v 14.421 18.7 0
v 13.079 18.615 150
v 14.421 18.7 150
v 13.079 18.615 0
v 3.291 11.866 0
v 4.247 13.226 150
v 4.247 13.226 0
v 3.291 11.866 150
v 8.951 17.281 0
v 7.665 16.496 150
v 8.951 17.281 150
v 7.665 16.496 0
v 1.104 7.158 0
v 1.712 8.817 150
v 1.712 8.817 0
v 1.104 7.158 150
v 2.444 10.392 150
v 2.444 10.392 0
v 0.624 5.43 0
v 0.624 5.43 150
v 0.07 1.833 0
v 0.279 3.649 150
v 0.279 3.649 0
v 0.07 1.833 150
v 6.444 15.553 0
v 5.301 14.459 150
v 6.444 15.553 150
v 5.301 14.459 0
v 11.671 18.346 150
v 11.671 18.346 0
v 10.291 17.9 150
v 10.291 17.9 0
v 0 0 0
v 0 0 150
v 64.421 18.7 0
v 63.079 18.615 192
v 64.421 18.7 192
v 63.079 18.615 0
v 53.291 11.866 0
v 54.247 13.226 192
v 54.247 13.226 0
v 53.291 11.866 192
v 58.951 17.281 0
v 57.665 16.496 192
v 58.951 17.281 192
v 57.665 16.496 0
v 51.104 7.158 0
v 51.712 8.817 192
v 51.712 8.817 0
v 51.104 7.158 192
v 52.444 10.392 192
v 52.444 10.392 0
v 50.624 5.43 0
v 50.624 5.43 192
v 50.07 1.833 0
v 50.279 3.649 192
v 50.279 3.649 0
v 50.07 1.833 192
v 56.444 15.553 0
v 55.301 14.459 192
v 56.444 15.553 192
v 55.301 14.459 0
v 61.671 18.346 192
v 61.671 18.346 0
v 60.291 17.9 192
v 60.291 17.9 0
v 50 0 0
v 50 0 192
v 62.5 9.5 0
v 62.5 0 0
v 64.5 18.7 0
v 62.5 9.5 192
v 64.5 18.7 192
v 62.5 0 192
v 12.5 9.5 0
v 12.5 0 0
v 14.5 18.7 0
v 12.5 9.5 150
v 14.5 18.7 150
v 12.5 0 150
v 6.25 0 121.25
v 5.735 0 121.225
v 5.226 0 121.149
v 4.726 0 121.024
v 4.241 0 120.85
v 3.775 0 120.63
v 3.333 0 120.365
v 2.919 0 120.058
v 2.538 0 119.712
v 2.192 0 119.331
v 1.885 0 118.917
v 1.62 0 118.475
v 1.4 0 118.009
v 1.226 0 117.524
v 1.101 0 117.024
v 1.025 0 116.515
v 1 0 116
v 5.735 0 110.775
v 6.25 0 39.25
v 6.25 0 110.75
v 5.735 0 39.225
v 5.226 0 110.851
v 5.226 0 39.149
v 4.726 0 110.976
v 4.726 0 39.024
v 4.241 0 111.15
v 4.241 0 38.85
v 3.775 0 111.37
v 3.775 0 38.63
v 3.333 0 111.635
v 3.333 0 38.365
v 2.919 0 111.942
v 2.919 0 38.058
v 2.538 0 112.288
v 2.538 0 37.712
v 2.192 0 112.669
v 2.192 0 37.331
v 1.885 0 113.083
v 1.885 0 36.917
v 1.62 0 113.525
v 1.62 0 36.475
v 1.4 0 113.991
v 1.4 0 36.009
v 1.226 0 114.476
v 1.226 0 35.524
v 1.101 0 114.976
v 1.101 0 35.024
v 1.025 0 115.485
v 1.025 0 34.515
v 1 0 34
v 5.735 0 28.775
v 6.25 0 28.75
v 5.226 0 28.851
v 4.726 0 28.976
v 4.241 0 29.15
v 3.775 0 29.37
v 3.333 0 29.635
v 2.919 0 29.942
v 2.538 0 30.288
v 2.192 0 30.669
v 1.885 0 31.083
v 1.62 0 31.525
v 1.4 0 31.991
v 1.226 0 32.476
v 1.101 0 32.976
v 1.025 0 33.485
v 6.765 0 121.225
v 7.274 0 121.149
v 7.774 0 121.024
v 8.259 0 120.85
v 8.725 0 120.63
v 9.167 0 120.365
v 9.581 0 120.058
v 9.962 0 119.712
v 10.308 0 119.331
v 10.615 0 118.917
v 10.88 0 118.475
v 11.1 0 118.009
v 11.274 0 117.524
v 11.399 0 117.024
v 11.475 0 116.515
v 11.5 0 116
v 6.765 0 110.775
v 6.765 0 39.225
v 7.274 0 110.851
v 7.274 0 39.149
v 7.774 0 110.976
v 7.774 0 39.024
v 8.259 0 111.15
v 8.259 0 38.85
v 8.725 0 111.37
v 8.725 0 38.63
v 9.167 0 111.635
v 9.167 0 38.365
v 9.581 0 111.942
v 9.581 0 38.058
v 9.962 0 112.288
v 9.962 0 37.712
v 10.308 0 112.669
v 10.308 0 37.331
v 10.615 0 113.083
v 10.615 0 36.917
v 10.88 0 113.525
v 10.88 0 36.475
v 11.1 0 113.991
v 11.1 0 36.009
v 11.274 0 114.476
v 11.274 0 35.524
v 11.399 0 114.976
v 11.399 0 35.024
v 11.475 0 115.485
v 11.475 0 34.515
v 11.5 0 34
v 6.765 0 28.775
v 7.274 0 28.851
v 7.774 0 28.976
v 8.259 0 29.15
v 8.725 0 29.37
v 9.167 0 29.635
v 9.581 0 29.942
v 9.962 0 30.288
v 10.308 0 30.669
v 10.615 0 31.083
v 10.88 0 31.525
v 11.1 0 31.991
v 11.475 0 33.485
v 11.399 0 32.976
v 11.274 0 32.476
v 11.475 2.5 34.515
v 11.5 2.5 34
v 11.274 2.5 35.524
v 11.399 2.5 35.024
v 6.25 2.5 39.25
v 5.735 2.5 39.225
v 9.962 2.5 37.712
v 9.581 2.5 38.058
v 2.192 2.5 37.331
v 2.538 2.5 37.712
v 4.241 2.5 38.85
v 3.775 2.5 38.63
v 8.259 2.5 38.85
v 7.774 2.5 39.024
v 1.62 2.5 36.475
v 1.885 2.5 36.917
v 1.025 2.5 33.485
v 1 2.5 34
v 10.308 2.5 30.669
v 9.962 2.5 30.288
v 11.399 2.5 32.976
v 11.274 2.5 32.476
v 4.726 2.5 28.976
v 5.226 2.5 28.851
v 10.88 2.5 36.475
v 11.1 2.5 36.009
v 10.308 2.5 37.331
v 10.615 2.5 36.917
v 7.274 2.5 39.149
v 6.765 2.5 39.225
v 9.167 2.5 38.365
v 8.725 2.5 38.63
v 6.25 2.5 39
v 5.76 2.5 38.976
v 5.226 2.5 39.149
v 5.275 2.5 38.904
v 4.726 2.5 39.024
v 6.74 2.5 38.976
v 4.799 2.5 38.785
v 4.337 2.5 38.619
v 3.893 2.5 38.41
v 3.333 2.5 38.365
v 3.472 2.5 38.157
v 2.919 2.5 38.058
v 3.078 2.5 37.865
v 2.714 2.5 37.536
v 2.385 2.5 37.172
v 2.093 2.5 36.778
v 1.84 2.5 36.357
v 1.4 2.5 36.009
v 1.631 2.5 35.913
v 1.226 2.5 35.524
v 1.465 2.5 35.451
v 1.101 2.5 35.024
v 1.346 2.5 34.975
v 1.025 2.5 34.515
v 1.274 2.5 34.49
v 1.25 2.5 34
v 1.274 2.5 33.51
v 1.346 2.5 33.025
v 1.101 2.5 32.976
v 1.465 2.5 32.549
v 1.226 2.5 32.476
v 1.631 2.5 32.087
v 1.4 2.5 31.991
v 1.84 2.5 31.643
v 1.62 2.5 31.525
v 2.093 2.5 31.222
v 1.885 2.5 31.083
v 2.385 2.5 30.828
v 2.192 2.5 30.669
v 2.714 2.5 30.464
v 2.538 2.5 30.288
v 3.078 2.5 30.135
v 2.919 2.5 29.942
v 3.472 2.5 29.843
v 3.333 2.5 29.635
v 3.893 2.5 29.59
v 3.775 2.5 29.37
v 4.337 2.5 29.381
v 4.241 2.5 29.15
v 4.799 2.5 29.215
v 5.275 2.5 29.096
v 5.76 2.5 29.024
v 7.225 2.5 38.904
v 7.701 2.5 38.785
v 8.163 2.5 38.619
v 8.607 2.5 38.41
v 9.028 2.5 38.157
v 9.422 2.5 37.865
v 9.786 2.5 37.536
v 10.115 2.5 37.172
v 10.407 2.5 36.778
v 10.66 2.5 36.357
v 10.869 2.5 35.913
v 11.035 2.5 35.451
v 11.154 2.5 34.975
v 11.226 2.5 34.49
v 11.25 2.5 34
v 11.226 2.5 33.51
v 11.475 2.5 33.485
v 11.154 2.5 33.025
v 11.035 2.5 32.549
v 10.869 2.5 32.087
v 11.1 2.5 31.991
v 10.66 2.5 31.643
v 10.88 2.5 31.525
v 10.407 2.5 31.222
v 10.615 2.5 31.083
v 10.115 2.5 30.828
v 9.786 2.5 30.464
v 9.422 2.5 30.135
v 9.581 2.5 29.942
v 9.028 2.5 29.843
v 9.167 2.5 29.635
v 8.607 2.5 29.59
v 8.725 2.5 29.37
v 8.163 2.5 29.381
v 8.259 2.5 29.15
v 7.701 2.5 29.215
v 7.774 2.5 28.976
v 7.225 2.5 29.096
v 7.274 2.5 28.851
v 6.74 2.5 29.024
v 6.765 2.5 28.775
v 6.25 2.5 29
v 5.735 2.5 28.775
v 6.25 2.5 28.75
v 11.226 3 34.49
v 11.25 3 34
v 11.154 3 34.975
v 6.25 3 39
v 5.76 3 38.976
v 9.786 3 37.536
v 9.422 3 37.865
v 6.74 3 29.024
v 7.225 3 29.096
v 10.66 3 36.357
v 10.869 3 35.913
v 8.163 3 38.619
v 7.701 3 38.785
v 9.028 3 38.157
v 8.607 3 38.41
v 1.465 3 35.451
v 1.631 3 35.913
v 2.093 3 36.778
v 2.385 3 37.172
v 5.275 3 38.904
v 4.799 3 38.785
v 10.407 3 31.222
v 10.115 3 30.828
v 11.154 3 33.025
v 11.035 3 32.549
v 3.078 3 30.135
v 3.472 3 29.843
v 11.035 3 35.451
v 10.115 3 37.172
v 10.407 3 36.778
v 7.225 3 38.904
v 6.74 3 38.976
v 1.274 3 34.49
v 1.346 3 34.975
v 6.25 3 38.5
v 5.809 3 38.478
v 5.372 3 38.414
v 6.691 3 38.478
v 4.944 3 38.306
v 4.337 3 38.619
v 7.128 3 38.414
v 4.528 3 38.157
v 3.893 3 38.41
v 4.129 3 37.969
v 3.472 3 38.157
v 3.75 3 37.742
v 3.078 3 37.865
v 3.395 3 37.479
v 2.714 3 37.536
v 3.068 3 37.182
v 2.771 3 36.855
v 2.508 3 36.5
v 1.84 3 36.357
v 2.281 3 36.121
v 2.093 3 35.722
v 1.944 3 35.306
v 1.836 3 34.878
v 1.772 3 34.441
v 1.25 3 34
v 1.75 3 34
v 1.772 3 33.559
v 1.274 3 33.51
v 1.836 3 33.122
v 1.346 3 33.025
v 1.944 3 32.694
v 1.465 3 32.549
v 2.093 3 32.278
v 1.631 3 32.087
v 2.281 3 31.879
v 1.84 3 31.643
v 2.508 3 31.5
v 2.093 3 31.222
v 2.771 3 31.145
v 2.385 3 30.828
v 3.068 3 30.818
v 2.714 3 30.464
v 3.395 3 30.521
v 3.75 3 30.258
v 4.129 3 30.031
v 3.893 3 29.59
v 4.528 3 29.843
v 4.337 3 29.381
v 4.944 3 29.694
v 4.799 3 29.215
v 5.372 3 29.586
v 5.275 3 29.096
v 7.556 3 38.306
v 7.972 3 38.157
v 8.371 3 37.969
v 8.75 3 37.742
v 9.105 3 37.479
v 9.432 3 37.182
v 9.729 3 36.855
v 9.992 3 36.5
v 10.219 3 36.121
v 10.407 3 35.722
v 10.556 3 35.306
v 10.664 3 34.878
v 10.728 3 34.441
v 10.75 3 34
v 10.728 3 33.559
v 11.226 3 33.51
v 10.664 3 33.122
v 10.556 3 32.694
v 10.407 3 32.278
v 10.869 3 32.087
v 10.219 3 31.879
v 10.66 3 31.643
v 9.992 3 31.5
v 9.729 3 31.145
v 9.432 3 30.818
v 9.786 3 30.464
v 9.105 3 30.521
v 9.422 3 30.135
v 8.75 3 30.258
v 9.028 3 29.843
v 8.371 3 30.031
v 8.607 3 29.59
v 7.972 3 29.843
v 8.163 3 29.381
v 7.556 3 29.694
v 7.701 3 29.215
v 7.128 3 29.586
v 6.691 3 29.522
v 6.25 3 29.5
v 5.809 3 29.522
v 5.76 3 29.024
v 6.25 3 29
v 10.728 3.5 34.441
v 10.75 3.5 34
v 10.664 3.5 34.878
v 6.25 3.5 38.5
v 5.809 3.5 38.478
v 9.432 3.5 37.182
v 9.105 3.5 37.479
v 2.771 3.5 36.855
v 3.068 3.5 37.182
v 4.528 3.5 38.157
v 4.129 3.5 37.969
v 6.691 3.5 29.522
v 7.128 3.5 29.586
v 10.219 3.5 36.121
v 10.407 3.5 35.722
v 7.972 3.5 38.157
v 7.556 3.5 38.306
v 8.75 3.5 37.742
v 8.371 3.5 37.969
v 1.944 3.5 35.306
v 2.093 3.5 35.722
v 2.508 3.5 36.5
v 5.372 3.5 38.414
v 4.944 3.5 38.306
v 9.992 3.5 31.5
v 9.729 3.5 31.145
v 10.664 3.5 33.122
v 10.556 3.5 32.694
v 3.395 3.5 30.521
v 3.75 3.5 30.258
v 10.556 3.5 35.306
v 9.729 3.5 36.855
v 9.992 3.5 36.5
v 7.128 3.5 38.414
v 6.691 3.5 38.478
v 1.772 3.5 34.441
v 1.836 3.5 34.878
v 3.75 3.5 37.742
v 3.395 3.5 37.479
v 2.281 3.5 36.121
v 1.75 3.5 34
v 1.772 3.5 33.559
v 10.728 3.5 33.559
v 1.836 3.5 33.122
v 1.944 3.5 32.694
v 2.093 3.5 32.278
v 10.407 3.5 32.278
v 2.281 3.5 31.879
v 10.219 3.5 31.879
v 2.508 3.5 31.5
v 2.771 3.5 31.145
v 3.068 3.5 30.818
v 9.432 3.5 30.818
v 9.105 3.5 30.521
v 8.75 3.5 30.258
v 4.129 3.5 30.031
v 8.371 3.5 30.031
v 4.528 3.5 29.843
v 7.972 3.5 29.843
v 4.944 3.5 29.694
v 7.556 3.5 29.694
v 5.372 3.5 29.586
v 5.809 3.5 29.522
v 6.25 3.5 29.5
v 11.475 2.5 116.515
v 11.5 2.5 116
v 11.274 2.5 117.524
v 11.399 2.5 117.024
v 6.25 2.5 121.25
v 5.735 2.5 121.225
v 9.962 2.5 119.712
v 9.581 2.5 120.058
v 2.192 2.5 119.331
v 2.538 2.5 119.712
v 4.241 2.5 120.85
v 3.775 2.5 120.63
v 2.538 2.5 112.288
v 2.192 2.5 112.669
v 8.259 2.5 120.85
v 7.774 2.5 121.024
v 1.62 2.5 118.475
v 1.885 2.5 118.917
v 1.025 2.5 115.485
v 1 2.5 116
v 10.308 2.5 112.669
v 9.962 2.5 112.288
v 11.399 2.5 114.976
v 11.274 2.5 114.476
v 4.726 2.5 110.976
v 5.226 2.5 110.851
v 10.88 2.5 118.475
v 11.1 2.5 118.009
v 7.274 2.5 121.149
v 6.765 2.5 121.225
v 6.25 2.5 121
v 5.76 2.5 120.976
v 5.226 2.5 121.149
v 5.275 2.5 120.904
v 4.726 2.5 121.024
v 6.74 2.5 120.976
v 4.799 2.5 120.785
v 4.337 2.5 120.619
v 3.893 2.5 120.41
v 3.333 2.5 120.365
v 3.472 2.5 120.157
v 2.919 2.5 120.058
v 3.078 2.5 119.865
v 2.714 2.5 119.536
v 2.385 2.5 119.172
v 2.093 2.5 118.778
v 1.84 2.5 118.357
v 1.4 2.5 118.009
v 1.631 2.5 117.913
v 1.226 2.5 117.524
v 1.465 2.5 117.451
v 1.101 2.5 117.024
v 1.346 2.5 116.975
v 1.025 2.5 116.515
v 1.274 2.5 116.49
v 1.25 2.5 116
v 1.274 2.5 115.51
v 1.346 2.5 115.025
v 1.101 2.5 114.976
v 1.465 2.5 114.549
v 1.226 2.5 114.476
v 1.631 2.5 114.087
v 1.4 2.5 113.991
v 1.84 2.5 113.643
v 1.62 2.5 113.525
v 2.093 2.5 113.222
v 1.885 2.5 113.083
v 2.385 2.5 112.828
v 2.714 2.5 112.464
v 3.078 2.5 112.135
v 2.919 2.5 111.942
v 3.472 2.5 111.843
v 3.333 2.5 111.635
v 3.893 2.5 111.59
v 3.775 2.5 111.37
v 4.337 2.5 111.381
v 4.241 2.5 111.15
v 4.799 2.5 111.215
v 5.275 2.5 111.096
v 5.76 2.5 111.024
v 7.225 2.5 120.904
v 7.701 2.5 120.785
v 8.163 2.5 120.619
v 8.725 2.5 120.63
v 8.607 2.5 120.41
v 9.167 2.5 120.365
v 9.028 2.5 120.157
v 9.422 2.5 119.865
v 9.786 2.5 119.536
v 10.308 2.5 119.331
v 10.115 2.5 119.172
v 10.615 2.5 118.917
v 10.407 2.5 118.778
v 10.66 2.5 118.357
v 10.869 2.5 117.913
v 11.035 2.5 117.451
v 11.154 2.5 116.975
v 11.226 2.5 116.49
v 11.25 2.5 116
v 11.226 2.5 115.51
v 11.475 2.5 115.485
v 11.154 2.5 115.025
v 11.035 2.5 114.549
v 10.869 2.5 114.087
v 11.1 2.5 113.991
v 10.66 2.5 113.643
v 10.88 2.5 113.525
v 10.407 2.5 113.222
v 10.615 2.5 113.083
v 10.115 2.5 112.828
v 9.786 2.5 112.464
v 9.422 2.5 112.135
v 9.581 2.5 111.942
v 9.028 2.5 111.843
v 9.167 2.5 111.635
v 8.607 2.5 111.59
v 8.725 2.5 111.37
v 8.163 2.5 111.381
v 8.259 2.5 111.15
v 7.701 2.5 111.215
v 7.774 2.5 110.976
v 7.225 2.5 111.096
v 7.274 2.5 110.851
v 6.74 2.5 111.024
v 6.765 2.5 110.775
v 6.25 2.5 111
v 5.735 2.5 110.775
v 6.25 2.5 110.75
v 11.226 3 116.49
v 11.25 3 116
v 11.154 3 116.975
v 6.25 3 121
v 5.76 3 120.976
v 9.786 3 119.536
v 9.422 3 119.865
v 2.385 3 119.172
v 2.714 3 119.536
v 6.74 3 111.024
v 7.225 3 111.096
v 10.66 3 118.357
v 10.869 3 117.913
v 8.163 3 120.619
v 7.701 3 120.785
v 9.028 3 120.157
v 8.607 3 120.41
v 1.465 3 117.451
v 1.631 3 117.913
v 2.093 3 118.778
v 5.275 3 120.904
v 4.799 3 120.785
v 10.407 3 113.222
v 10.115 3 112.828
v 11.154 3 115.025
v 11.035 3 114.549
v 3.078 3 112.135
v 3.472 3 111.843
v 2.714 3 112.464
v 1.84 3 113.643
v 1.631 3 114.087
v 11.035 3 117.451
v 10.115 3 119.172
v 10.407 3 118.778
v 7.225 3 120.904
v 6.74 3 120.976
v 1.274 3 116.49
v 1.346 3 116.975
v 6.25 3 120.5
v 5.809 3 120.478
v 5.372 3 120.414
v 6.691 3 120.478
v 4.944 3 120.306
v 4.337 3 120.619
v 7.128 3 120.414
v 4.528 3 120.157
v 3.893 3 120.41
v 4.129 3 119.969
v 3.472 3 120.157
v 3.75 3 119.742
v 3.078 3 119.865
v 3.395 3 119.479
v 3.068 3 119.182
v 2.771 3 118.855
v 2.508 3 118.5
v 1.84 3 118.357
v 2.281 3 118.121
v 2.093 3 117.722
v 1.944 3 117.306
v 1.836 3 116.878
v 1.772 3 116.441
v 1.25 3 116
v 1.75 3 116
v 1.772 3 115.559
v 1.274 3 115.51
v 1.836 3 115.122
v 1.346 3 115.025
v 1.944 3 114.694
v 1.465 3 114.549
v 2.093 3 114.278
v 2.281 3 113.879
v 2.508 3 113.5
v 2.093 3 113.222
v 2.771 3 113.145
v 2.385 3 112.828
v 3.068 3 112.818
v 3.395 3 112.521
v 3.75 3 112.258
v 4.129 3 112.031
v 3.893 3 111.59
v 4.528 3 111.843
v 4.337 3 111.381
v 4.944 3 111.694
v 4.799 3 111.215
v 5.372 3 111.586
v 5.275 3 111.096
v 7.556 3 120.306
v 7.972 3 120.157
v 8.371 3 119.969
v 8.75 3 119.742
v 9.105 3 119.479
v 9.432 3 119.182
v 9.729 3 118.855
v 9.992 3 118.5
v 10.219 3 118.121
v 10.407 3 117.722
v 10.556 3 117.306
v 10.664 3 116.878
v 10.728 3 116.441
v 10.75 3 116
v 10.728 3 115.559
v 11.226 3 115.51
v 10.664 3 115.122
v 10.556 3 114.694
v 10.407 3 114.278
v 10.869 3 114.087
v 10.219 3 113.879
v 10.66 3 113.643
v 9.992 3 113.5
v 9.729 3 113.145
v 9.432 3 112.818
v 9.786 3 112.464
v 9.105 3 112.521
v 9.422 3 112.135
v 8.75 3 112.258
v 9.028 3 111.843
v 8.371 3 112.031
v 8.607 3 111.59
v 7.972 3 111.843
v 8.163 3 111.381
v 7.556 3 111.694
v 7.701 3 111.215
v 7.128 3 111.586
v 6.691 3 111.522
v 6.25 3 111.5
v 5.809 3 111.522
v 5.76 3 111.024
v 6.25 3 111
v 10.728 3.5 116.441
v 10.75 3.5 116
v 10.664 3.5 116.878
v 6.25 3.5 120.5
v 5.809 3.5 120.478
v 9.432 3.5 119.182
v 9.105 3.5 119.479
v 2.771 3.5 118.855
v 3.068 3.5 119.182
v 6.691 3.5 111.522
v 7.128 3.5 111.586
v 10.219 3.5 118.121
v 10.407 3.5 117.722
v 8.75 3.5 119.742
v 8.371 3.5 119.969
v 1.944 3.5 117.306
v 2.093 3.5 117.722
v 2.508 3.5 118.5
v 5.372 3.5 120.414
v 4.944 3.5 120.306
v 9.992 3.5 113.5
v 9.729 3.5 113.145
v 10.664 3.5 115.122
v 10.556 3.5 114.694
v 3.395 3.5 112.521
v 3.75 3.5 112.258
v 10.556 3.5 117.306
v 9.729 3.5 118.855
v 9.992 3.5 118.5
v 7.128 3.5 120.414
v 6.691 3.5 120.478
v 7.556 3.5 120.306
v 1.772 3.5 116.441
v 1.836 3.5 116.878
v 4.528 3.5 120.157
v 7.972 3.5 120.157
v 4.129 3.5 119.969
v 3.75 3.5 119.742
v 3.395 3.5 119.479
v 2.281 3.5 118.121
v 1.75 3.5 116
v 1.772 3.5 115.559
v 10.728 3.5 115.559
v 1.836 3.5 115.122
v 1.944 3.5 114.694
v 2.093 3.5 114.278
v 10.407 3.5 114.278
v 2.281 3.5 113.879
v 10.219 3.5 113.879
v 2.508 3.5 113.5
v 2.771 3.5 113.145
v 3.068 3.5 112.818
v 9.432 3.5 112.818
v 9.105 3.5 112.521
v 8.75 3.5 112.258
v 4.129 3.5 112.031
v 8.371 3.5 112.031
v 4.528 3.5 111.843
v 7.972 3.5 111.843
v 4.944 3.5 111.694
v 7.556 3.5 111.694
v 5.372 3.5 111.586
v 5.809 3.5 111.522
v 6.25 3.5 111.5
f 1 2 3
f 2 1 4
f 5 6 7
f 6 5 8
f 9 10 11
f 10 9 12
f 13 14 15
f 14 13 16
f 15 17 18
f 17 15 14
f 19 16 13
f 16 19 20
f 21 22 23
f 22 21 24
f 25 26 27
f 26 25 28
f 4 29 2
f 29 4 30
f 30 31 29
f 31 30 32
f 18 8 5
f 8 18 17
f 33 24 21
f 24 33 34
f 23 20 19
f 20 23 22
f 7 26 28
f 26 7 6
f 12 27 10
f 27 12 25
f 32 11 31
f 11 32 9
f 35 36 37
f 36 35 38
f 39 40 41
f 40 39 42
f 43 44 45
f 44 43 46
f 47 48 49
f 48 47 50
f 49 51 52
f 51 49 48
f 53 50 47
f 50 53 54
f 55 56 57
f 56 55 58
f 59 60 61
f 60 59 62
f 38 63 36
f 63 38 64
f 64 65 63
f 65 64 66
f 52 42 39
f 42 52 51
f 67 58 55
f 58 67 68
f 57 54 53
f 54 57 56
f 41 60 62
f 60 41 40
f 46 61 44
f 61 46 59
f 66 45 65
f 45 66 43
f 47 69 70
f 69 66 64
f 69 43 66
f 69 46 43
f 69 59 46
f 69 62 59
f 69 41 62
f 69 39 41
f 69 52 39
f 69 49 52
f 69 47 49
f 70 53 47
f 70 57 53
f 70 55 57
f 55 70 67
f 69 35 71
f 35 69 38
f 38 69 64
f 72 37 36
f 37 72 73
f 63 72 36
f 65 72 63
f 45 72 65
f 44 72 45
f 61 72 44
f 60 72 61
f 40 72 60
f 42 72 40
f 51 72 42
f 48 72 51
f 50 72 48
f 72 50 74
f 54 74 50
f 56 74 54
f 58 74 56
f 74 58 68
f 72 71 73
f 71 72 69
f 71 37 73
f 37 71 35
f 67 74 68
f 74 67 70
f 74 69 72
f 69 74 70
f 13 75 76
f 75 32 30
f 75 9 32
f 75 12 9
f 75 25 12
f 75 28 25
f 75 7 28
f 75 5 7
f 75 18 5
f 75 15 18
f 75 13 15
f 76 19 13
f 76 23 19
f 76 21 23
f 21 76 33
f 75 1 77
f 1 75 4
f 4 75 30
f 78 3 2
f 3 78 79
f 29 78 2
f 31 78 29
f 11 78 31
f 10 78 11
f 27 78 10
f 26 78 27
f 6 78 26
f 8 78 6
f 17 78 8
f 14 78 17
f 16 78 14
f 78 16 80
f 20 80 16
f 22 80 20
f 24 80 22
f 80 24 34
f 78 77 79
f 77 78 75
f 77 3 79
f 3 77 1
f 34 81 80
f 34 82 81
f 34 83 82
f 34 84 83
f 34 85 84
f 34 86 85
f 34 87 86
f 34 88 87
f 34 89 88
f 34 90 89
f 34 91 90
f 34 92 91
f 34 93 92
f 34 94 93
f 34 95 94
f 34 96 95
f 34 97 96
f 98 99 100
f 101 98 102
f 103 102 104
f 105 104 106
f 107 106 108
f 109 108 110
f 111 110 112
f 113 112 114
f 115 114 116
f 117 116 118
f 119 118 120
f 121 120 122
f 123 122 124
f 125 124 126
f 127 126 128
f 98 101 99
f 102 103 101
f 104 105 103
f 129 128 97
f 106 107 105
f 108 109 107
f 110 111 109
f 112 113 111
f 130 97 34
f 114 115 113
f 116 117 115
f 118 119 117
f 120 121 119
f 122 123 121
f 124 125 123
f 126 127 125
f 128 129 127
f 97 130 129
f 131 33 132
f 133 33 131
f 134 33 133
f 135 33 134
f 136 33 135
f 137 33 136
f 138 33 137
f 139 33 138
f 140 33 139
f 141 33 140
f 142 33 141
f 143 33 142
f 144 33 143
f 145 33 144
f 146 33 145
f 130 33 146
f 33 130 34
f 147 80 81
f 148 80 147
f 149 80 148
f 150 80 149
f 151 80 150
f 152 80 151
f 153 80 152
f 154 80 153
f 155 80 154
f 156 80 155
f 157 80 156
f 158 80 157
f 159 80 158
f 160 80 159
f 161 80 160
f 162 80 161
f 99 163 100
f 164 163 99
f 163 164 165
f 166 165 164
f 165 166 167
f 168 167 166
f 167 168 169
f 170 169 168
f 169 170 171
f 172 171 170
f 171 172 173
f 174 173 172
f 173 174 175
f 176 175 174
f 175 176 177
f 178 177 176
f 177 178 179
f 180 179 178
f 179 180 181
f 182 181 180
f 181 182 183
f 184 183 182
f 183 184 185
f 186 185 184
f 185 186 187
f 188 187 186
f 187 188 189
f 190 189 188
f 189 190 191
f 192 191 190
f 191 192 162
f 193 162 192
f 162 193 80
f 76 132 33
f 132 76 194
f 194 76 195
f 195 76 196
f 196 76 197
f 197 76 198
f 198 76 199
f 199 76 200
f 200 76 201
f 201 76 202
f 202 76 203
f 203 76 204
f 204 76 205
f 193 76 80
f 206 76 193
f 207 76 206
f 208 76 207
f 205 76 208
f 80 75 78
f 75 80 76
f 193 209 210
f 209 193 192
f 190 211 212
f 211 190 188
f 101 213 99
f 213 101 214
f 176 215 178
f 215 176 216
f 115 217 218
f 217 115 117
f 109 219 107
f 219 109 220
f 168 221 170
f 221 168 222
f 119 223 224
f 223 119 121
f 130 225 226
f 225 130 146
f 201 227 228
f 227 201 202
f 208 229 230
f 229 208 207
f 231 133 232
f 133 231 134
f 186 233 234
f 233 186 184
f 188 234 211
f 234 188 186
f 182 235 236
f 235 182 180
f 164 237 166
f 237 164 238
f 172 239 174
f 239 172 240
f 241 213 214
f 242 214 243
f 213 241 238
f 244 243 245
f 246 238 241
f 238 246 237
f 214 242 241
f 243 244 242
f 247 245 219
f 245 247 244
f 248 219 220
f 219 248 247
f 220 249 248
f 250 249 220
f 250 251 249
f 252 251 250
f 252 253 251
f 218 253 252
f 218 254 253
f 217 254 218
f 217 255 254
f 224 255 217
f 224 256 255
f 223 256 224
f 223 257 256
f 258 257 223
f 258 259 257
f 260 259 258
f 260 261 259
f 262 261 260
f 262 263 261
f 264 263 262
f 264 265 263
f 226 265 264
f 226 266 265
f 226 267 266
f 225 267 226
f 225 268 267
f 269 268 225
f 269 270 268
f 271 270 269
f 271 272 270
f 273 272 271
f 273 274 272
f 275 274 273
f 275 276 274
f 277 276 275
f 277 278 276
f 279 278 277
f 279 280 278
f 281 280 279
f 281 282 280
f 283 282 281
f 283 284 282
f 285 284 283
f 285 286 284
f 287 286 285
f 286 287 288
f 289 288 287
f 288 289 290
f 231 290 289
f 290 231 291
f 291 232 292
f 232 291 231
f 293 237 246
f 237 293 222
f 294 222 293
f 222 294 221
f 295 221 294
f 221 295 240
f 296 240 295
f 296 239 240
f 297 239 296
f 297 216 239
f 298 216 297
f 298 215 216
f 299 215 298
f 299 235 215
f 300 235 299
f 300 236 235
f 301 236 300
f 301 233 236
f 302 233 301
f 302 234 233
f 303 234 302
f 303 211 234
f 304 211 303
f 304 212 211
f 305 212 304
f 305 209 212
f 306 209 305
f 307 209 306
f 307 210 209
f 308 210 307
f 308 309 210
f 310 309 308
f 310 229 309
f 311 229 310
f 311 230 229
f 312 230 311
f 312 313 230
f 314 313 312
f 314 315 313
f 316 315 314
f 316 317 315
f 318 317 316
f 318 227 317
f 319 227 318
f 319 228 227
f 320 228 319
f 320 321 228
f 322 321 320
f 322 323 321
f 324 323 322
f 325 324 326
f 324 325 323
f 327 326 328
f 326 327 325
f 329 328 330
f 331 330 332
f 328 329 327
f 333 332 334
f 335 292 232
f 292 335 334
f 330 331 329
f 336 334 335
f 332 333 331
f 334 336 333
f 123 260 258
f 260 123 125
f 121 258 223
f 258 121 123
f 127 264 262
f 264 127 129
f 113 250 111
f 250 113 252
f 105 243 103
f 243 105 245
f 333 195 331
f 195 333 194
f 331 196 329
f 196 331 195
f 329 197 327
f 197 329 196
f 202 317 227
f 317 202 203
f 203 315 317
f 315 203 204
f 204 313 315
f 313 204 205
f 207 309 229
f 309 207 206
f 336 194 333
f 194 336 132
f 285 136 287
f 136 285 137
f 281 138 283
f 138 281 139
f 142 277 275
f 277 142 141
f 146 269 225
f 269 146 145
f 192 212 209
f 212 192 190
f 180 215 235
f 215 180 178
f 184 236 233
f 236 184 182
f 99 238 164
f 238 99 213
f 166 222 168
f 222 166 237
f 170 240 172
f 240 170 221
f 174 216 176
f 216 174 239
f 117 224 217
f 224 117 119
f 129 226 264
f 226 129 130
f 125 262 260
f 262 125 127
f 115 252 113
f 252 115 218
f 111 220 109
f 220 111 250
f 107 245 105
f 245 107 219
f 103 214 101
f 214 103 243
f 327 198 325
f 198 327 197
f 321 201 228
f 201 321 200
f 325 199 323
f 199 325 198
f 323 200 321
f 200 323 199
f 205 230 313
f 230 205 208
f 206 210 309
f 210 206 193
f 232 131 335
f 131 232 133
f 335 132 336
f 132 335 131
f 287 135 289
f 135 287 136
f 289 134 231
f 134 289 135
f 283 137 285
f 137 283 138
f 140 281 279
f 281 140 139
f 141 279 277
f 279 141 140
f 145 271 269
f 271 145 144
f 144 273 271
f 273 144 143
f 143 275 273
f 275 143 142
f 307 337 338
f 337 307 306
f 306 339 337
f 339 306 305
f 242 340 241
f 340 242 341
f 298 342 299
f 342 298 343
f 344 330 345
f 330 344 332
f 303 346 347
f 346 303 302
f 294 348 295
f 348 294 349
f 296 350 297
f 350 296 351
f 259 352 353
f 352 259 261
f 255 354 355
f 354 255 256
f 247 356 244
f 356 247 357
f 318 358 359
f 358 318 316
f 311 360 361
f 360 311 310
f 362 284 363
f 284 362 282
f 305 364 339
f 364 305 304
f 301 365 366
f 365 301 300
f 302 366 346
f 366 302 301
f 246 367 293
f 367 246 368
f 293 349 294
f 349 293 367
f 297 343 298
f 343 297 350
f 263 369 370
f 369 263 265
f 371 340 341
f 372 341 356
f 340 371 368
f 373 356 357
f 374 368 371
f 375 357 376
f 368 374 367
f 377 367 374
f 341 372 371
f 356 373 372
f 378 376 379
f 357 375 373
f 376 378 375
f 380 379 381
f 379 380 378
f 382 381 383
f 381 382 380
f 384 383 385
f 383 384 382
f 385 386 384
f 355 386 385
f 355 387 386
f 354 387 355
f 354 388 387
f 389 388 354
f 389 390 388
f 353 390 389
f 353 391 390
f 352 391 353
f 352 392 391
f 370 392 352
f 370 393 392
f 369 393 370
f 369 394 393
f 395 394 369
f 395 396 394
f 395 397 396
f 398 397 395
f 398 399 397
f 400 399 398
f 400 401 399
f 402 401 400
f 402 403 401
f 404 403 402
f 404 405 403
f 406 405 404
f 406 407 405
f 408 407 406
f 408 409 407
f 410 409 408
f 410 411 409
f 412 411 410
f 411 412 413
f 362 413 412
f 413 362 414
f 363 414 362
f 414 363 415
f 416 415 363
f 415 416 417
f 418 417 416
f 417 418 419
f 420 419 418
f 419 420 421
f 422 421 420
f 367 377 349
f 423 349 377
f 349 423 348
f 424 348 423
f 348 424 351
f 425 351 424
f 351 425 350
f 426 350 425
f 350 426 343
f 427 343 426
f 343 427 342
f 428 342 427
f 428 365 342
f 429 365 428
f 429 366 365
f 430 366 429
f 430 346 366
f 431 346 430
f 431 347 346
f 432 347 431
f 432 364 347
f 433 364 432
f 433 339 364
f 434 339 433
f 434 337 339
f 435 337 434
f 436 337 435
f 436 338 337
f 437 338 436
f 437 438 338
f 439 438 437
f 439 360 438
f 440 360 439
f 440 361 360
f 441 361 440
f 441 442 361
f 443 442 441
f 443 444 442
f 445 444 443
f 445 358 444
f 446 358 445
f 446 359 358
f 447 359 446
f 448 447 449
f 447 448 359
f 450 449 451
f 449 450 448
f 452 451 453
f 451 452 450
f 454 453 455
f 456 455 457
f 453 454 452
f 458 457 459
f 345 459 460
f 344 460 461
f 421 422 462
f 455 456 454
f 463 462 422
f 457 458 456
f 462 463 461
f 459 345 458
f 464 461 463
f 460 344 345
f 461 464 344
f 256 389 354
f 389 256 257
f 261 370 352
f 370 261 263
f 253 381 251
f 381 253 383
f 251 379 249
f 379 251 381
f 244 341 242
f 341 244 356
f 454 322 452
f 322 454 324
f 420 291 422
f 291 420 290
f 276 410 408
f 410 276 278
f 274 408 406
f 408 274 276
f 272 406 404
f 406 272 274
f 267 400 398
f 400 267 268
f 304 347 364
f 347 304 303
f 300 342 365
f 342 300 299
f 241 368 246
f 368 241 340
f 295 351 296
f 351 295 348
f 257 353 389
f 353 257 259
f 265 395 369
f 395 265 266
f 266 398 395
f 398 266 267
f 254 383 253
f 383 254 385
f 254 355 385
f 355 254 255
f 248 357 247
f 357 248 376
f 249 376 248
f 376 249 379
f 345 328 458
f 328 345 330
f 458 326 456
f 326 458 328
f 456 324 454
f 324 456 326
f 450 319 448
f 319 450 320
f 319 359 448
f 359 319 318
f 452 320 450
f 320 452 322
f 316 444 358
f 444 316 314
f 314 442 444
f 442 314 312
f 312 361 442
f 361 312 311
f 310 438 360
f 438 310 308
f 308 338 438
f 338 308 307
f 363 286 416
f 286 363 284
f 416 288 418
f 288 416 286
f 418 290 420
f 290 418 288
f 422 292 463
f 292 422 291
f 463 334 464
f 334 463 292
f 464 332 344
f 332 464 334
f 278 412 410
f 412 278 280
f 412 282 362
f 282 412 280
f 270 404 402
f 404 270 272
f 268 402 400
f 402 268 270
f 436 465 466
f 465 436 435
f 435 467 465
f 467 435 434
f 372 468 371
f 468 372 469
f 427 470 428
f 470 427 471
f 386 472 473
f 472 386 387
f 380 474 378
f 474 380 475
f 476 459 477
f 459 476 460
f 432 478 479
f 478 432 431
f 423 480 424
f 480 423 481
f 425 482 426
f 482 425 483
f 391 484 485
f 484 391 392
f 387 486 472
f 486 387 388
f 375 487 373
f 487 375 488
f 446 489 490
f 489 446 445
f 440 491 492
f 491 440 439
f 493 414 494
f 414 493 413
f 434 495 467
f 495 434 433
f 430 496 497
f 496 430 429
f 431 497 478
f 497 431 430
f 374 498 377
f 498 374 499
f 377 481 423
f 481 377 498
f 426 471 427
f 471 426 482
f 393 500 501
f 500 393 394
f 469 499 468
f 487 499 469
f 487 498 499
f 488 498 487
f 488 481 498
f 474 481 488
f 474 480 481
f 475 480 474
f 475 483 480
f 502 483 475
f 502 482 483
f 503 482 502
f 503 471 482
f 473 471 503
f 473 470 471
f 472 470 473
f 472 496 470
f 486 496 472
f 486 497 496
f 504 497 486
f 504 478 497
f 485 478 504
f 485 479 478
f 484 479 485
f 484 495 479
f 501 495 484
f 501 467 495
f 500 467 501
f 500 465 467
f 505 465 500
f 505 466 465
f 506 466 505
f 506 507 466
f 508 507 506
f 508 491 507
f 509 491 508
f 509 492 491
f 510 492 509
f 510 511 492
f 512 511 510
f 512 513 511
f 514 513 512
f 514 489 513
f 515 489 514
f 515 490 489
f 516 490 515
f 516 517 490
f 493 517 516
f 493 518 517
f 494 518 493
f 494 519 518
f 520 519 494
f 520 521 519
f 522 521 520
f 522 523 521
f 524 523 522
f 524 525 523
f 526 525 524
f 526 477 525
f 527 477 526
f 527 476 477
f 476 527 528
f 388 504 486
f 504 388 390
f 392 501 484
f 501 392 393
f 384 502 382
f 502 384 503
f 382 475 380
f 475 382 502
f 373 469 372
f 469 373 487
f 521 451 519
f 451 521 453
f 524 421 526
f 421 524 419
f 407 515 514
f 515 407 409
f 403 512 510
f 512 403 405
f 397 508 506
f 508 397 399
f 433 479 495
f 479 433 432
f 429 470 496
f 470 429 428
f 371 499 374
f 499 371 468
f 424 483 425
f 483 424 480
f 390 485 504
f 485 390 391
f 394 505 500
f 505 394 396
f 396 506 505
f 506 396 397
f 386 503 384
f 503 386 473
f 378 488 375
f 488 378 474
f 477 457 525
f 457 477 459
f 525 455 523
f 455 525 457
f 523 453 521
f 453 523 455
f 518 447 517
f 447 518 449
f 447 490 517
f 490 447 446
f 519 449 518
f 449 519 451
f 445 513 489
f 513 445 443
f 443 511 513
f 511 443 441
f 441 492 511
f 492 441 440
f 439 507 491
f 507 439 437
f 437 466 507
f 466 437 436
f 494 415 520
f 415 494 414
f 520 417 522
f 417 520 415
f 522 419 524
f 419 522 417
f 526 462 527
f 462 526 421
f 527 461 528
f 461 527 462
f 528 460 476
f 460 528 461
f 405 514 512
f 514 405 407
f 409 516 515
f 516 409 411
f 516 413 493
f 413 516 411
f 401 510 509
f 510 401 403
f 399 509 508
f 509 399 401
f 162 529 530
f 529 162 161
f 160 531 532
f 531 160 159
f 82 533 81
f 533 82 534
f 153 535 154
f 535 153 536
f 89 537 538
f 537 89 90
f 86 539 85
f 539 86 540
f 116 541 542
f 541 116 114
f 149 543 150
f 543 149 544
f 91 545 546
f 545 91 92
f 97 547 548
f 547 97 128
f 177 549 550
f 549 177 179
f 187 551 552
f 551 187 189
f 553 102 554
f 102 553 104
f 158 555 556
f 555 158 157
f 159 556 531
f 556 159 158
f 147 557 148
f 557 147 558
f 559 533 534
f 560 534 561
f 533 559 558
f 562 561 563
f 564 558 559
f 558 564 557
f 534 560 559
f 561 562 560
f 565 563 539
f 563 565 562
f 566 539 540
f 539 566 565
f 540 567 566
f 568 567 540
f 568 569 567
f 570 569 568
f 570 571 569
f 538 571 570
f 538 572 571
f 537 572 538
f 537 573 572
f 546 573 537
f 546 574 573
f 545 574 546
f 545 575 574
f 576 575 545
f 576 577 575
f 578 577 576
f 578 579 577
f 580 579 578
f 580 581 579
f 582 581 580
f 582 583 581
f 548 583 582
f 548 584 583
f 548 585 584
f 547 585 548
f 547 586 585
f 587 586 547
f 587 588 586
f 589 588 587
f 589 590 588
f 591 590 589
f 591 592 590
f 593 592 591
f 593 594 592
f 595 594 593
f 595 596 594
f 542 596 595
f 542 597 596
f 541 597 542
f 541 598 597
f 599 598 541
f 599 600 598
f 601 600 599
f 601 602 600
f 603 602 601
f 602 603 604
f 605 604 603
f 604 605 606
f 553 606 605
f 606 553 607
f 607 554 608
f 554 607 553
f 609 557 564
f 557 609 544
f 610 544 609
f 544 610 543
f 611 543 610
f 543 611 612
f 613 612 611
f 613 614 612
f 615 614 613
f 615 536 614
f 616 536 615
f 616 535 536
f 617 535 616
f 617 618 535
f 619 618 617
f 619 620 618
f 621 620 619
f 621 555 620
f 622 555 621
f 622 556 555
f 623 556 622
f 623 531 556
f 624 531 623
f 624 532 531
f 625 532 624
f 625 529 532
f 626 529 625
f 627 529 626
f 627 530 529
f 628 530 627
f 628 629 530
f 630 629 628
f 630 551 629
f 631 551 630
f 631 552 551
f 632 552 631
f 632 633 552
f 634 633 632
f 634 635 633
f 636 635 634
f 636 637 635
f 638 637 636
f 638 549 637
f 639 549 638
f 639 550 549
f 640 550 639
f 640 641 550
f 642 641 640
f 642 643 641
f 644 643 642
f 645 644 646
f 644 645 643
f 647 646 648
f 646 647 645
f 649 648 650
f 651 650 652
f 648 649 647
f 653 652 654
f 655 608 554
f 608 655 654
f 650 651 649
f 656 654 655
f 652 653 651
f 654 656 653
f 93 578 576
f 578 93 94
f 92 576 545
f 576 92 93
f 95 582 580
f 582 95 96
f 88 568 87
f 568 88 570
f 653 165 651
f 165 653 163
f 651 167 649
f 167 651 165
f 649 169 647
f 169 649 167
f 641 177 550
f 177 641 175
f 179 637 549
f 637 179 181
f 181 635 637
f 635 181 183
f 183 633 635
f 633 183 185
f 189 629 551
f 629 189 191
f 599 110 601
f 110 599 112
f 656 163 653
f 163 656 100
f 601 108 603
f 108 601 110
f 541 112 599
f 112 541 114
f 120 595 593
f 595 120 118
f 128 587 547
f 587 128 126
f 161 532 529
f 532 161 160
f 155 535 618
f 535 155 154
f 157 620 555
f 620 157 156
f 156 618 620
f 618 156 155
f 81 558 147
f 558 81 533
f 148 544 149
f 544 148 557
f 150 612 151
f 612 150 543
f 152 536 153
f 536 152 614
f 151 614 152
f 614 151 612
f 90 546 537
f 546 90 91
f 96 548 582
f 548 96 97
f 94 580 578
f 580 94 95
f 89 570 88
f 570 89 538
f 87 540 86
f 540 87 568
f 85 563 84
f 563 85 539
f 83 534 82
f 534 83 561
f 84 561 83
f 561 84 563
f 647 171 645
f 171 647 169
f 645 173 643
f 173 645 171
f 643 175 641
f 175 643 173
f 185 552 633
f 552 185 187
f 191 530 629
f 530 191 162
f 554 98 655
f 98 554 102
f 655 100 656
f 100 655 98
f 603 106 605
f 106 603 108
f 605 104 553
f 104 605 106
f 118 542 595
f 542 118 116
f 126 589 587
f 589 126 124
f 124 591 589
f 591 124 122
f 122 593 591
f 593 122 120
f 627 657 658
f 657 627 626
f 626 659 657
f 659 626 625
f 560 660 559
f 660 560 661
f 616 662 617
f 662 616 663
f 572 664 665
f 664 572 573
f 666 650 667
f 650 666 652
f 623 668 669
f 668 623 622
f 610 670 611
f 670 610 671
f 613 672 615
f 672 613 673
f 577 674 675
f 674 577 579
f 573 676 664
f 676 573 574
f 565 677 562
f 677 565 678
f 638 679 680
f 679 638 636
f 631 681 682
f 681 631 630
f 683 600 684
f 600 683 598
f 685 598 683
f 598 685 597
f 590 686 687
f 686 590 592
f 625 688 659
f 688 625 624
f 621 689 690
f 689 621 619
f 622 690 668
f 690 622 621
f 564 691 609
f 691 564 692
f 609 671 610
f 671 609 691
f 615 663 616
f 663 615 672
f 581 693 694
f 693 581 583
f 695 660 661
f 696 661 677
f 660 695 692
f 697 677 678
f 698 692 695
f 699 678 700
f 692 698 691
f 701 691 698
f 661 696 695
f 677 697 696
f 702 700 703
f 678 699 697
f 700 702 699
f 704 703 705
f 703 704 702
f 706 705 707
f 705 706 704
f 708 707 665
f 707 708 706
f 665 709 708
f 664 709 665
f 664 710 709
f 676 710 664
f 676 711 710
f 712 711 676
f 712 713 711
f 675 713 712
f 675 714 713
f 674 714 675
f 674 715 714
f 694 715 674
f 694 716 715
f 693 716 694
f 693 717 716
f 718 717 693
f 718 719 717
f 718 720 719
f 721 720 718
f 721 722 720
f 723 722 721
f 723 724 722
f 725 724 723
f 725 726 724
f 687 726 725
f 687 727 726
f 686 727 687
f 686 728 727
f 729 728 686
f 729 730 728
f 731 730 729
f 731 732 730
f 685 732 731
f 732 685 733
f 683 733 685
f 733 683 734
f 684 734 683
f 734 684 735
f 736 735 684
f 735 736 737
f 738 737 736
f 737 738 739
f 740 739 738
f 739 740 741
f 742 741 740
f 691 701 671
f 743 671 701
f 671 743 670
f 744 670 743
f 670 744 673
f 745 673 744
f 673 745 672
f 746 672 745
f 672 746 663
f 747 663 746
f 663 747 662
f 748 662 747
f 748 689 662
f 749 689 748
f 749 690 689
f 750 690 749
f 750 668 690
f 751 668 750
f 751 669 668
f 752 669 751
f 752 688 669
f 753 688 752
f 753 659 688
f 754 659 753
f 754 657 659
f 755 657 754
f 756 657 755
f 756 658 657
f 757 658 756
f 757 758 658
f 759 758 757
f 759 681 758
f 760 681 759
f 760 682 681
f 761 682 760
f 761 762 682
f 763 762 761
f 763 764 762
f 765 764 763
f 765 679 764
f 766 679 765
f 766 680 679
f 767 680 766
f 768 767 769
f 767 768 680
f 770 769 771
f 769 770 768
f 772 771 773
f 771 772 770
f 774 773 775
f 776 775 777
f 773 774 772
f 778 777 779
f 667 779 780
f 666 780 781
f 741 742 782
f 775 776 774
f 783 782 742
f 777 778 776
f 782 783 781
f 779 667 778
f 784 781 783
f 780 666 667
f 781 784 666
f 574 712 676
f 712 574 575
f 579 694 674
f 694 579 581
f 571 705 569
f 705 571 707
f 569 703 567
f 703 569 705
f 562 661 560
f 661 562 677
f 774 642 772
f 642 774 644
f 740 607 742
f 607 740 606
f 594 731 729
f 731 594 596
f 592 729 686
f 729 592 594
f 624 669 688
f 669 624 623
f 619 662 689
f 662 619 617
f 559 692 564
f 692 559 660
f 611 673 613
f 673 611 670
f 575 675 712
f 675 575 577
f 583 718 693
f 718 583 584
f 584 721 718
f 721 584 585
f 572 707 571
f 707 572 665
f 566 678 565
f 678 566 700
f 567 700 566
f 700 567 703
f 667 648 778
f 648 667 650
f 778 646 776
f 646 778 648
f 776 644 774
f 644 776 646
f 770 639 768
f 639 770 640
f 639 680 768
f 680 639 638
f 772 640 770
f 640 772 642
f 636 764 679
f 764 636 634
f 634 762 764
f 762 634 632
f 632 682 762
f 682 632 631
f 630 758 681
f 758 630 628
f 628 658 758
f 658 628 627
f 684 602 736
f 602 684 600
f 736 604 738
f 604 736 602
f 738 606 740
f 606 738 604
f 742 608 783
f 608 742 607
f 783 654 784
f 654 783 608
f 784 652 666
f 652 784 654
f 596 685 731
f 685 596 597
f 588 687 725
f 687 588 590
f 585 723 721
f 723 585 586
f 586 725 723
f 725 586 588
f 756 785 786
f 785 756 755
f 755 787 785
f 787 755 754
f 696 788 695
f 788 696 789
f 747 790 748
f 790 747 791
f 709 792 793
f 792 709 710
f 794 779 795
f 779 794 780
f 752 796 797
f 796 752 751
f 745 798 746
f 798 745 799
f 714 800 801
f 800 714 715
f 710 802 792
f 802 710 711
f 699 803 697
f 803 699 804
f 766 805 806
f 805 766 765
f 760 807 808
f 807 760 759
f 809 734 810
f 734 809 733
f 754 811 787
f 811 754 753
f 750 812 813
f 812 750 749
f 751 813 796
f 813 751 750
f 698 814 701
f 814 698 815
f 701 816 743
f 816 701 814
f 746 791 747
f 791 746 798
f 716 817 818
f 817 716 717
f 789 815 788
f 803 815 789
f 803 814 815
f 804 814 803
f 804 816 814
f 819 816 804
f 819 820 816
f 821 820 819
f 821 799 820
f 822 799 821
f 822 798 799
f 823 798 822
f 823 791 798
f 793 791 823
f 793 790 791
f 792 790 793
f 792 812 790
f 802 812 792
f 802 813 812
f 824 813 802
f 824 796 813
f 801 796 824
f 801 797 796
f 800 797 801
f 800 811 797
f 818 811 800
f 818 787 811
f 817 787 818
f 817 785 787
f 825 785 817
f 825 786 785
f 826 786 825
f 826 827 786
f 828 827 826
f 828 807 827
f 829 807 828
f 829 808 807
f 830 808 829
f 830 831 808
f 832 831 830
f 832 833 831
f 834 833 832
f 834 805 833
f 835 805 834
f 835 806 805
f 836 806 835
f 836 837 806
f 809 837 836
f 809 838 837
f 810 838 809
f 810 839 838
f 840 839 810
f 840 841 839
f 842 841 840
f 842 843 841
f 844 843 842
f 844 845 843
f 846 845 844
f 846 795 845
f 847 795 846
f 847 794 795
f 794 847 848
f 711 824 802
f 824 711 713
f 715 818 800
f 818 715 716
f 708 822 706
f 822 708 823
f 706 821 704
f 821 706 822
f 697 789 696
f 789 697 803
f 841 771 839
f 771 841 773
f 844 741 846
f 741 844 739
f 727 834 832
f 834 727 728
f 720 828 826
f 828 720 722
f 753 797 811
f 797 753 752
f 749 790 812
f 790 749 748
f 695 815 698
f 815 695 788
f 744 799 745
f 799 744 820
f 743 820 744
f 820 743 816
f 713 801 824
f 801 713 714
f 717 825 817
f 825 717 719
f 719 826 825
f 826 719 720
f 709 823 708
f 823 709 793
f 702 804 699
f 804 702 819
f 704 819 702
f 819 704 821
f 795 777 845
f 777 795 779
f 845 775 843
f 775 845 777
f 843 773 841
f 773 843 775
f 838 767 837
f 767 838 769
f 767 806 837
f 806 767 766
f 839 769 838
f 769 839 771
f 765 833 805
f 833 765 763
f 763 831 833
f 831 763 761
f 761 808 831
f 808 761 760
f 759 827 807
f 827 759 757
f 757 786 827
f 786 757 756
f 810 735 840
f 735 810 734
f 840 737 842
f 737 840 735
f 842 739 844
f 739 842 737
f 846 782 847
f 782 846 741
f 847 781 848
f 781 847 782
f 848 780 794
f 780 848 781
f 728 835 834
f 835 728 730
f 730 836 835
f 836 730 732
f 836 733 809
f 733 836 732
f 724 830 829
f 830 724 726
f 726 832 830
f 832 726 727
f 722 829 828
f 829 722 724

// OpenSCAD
// A simple "edge" for C64 keyboards.
// There were many versions of this keyboard.
// This design may not work on all of them.

$fn = 64;


//34


difference() {
    block(150);
    cutter(150);

    translate([6.25,2.5,34])
    rotate([90,0,0])
    cylinder(h=6, d=10.5);

    translate([6.25,3.0,34])
    rotate([90,0,0])
    cylinder(h=6, d=10);

    translate([6.25,3.5,34])
    rotate([90,0,0])
    cylinder(h=6, d=9);

    translate([6.25,2.5,150-34])
    rotate([90,0,0])
    cylinder(h=6, d=10.5);

    translate([6.25,3.0,150-34])
    rotate([90,0,0])
    cylinder(h=6, d=10);

    translate([6.25,3.5,150-34])
    rotate([90,0,0])
    cylinder(h=6, d=9);

}

translate([50,0,0])
difference() {
    block(384/2);
    cutter(384/2);
}

module cutter(length) {
    difference() {
        translate([-1,-1,-1])
        cube([16,25,length+2]);
        
        translate([14.5,0,-2])
        scale([1,1.29,1])
        cylinder(h=length+4, d=29);
    }
}

module block(length) {
    linear_extrude(height = length, center = false,
        convexity = 10, twist = 0)
    translate([0, 0, 0])
    polygon([[0,0],[12.5,0],[12.5,9.5],[14.5,18.7],[0,18.7]],
        paths=[[0,1,2,3,4]]);
}
